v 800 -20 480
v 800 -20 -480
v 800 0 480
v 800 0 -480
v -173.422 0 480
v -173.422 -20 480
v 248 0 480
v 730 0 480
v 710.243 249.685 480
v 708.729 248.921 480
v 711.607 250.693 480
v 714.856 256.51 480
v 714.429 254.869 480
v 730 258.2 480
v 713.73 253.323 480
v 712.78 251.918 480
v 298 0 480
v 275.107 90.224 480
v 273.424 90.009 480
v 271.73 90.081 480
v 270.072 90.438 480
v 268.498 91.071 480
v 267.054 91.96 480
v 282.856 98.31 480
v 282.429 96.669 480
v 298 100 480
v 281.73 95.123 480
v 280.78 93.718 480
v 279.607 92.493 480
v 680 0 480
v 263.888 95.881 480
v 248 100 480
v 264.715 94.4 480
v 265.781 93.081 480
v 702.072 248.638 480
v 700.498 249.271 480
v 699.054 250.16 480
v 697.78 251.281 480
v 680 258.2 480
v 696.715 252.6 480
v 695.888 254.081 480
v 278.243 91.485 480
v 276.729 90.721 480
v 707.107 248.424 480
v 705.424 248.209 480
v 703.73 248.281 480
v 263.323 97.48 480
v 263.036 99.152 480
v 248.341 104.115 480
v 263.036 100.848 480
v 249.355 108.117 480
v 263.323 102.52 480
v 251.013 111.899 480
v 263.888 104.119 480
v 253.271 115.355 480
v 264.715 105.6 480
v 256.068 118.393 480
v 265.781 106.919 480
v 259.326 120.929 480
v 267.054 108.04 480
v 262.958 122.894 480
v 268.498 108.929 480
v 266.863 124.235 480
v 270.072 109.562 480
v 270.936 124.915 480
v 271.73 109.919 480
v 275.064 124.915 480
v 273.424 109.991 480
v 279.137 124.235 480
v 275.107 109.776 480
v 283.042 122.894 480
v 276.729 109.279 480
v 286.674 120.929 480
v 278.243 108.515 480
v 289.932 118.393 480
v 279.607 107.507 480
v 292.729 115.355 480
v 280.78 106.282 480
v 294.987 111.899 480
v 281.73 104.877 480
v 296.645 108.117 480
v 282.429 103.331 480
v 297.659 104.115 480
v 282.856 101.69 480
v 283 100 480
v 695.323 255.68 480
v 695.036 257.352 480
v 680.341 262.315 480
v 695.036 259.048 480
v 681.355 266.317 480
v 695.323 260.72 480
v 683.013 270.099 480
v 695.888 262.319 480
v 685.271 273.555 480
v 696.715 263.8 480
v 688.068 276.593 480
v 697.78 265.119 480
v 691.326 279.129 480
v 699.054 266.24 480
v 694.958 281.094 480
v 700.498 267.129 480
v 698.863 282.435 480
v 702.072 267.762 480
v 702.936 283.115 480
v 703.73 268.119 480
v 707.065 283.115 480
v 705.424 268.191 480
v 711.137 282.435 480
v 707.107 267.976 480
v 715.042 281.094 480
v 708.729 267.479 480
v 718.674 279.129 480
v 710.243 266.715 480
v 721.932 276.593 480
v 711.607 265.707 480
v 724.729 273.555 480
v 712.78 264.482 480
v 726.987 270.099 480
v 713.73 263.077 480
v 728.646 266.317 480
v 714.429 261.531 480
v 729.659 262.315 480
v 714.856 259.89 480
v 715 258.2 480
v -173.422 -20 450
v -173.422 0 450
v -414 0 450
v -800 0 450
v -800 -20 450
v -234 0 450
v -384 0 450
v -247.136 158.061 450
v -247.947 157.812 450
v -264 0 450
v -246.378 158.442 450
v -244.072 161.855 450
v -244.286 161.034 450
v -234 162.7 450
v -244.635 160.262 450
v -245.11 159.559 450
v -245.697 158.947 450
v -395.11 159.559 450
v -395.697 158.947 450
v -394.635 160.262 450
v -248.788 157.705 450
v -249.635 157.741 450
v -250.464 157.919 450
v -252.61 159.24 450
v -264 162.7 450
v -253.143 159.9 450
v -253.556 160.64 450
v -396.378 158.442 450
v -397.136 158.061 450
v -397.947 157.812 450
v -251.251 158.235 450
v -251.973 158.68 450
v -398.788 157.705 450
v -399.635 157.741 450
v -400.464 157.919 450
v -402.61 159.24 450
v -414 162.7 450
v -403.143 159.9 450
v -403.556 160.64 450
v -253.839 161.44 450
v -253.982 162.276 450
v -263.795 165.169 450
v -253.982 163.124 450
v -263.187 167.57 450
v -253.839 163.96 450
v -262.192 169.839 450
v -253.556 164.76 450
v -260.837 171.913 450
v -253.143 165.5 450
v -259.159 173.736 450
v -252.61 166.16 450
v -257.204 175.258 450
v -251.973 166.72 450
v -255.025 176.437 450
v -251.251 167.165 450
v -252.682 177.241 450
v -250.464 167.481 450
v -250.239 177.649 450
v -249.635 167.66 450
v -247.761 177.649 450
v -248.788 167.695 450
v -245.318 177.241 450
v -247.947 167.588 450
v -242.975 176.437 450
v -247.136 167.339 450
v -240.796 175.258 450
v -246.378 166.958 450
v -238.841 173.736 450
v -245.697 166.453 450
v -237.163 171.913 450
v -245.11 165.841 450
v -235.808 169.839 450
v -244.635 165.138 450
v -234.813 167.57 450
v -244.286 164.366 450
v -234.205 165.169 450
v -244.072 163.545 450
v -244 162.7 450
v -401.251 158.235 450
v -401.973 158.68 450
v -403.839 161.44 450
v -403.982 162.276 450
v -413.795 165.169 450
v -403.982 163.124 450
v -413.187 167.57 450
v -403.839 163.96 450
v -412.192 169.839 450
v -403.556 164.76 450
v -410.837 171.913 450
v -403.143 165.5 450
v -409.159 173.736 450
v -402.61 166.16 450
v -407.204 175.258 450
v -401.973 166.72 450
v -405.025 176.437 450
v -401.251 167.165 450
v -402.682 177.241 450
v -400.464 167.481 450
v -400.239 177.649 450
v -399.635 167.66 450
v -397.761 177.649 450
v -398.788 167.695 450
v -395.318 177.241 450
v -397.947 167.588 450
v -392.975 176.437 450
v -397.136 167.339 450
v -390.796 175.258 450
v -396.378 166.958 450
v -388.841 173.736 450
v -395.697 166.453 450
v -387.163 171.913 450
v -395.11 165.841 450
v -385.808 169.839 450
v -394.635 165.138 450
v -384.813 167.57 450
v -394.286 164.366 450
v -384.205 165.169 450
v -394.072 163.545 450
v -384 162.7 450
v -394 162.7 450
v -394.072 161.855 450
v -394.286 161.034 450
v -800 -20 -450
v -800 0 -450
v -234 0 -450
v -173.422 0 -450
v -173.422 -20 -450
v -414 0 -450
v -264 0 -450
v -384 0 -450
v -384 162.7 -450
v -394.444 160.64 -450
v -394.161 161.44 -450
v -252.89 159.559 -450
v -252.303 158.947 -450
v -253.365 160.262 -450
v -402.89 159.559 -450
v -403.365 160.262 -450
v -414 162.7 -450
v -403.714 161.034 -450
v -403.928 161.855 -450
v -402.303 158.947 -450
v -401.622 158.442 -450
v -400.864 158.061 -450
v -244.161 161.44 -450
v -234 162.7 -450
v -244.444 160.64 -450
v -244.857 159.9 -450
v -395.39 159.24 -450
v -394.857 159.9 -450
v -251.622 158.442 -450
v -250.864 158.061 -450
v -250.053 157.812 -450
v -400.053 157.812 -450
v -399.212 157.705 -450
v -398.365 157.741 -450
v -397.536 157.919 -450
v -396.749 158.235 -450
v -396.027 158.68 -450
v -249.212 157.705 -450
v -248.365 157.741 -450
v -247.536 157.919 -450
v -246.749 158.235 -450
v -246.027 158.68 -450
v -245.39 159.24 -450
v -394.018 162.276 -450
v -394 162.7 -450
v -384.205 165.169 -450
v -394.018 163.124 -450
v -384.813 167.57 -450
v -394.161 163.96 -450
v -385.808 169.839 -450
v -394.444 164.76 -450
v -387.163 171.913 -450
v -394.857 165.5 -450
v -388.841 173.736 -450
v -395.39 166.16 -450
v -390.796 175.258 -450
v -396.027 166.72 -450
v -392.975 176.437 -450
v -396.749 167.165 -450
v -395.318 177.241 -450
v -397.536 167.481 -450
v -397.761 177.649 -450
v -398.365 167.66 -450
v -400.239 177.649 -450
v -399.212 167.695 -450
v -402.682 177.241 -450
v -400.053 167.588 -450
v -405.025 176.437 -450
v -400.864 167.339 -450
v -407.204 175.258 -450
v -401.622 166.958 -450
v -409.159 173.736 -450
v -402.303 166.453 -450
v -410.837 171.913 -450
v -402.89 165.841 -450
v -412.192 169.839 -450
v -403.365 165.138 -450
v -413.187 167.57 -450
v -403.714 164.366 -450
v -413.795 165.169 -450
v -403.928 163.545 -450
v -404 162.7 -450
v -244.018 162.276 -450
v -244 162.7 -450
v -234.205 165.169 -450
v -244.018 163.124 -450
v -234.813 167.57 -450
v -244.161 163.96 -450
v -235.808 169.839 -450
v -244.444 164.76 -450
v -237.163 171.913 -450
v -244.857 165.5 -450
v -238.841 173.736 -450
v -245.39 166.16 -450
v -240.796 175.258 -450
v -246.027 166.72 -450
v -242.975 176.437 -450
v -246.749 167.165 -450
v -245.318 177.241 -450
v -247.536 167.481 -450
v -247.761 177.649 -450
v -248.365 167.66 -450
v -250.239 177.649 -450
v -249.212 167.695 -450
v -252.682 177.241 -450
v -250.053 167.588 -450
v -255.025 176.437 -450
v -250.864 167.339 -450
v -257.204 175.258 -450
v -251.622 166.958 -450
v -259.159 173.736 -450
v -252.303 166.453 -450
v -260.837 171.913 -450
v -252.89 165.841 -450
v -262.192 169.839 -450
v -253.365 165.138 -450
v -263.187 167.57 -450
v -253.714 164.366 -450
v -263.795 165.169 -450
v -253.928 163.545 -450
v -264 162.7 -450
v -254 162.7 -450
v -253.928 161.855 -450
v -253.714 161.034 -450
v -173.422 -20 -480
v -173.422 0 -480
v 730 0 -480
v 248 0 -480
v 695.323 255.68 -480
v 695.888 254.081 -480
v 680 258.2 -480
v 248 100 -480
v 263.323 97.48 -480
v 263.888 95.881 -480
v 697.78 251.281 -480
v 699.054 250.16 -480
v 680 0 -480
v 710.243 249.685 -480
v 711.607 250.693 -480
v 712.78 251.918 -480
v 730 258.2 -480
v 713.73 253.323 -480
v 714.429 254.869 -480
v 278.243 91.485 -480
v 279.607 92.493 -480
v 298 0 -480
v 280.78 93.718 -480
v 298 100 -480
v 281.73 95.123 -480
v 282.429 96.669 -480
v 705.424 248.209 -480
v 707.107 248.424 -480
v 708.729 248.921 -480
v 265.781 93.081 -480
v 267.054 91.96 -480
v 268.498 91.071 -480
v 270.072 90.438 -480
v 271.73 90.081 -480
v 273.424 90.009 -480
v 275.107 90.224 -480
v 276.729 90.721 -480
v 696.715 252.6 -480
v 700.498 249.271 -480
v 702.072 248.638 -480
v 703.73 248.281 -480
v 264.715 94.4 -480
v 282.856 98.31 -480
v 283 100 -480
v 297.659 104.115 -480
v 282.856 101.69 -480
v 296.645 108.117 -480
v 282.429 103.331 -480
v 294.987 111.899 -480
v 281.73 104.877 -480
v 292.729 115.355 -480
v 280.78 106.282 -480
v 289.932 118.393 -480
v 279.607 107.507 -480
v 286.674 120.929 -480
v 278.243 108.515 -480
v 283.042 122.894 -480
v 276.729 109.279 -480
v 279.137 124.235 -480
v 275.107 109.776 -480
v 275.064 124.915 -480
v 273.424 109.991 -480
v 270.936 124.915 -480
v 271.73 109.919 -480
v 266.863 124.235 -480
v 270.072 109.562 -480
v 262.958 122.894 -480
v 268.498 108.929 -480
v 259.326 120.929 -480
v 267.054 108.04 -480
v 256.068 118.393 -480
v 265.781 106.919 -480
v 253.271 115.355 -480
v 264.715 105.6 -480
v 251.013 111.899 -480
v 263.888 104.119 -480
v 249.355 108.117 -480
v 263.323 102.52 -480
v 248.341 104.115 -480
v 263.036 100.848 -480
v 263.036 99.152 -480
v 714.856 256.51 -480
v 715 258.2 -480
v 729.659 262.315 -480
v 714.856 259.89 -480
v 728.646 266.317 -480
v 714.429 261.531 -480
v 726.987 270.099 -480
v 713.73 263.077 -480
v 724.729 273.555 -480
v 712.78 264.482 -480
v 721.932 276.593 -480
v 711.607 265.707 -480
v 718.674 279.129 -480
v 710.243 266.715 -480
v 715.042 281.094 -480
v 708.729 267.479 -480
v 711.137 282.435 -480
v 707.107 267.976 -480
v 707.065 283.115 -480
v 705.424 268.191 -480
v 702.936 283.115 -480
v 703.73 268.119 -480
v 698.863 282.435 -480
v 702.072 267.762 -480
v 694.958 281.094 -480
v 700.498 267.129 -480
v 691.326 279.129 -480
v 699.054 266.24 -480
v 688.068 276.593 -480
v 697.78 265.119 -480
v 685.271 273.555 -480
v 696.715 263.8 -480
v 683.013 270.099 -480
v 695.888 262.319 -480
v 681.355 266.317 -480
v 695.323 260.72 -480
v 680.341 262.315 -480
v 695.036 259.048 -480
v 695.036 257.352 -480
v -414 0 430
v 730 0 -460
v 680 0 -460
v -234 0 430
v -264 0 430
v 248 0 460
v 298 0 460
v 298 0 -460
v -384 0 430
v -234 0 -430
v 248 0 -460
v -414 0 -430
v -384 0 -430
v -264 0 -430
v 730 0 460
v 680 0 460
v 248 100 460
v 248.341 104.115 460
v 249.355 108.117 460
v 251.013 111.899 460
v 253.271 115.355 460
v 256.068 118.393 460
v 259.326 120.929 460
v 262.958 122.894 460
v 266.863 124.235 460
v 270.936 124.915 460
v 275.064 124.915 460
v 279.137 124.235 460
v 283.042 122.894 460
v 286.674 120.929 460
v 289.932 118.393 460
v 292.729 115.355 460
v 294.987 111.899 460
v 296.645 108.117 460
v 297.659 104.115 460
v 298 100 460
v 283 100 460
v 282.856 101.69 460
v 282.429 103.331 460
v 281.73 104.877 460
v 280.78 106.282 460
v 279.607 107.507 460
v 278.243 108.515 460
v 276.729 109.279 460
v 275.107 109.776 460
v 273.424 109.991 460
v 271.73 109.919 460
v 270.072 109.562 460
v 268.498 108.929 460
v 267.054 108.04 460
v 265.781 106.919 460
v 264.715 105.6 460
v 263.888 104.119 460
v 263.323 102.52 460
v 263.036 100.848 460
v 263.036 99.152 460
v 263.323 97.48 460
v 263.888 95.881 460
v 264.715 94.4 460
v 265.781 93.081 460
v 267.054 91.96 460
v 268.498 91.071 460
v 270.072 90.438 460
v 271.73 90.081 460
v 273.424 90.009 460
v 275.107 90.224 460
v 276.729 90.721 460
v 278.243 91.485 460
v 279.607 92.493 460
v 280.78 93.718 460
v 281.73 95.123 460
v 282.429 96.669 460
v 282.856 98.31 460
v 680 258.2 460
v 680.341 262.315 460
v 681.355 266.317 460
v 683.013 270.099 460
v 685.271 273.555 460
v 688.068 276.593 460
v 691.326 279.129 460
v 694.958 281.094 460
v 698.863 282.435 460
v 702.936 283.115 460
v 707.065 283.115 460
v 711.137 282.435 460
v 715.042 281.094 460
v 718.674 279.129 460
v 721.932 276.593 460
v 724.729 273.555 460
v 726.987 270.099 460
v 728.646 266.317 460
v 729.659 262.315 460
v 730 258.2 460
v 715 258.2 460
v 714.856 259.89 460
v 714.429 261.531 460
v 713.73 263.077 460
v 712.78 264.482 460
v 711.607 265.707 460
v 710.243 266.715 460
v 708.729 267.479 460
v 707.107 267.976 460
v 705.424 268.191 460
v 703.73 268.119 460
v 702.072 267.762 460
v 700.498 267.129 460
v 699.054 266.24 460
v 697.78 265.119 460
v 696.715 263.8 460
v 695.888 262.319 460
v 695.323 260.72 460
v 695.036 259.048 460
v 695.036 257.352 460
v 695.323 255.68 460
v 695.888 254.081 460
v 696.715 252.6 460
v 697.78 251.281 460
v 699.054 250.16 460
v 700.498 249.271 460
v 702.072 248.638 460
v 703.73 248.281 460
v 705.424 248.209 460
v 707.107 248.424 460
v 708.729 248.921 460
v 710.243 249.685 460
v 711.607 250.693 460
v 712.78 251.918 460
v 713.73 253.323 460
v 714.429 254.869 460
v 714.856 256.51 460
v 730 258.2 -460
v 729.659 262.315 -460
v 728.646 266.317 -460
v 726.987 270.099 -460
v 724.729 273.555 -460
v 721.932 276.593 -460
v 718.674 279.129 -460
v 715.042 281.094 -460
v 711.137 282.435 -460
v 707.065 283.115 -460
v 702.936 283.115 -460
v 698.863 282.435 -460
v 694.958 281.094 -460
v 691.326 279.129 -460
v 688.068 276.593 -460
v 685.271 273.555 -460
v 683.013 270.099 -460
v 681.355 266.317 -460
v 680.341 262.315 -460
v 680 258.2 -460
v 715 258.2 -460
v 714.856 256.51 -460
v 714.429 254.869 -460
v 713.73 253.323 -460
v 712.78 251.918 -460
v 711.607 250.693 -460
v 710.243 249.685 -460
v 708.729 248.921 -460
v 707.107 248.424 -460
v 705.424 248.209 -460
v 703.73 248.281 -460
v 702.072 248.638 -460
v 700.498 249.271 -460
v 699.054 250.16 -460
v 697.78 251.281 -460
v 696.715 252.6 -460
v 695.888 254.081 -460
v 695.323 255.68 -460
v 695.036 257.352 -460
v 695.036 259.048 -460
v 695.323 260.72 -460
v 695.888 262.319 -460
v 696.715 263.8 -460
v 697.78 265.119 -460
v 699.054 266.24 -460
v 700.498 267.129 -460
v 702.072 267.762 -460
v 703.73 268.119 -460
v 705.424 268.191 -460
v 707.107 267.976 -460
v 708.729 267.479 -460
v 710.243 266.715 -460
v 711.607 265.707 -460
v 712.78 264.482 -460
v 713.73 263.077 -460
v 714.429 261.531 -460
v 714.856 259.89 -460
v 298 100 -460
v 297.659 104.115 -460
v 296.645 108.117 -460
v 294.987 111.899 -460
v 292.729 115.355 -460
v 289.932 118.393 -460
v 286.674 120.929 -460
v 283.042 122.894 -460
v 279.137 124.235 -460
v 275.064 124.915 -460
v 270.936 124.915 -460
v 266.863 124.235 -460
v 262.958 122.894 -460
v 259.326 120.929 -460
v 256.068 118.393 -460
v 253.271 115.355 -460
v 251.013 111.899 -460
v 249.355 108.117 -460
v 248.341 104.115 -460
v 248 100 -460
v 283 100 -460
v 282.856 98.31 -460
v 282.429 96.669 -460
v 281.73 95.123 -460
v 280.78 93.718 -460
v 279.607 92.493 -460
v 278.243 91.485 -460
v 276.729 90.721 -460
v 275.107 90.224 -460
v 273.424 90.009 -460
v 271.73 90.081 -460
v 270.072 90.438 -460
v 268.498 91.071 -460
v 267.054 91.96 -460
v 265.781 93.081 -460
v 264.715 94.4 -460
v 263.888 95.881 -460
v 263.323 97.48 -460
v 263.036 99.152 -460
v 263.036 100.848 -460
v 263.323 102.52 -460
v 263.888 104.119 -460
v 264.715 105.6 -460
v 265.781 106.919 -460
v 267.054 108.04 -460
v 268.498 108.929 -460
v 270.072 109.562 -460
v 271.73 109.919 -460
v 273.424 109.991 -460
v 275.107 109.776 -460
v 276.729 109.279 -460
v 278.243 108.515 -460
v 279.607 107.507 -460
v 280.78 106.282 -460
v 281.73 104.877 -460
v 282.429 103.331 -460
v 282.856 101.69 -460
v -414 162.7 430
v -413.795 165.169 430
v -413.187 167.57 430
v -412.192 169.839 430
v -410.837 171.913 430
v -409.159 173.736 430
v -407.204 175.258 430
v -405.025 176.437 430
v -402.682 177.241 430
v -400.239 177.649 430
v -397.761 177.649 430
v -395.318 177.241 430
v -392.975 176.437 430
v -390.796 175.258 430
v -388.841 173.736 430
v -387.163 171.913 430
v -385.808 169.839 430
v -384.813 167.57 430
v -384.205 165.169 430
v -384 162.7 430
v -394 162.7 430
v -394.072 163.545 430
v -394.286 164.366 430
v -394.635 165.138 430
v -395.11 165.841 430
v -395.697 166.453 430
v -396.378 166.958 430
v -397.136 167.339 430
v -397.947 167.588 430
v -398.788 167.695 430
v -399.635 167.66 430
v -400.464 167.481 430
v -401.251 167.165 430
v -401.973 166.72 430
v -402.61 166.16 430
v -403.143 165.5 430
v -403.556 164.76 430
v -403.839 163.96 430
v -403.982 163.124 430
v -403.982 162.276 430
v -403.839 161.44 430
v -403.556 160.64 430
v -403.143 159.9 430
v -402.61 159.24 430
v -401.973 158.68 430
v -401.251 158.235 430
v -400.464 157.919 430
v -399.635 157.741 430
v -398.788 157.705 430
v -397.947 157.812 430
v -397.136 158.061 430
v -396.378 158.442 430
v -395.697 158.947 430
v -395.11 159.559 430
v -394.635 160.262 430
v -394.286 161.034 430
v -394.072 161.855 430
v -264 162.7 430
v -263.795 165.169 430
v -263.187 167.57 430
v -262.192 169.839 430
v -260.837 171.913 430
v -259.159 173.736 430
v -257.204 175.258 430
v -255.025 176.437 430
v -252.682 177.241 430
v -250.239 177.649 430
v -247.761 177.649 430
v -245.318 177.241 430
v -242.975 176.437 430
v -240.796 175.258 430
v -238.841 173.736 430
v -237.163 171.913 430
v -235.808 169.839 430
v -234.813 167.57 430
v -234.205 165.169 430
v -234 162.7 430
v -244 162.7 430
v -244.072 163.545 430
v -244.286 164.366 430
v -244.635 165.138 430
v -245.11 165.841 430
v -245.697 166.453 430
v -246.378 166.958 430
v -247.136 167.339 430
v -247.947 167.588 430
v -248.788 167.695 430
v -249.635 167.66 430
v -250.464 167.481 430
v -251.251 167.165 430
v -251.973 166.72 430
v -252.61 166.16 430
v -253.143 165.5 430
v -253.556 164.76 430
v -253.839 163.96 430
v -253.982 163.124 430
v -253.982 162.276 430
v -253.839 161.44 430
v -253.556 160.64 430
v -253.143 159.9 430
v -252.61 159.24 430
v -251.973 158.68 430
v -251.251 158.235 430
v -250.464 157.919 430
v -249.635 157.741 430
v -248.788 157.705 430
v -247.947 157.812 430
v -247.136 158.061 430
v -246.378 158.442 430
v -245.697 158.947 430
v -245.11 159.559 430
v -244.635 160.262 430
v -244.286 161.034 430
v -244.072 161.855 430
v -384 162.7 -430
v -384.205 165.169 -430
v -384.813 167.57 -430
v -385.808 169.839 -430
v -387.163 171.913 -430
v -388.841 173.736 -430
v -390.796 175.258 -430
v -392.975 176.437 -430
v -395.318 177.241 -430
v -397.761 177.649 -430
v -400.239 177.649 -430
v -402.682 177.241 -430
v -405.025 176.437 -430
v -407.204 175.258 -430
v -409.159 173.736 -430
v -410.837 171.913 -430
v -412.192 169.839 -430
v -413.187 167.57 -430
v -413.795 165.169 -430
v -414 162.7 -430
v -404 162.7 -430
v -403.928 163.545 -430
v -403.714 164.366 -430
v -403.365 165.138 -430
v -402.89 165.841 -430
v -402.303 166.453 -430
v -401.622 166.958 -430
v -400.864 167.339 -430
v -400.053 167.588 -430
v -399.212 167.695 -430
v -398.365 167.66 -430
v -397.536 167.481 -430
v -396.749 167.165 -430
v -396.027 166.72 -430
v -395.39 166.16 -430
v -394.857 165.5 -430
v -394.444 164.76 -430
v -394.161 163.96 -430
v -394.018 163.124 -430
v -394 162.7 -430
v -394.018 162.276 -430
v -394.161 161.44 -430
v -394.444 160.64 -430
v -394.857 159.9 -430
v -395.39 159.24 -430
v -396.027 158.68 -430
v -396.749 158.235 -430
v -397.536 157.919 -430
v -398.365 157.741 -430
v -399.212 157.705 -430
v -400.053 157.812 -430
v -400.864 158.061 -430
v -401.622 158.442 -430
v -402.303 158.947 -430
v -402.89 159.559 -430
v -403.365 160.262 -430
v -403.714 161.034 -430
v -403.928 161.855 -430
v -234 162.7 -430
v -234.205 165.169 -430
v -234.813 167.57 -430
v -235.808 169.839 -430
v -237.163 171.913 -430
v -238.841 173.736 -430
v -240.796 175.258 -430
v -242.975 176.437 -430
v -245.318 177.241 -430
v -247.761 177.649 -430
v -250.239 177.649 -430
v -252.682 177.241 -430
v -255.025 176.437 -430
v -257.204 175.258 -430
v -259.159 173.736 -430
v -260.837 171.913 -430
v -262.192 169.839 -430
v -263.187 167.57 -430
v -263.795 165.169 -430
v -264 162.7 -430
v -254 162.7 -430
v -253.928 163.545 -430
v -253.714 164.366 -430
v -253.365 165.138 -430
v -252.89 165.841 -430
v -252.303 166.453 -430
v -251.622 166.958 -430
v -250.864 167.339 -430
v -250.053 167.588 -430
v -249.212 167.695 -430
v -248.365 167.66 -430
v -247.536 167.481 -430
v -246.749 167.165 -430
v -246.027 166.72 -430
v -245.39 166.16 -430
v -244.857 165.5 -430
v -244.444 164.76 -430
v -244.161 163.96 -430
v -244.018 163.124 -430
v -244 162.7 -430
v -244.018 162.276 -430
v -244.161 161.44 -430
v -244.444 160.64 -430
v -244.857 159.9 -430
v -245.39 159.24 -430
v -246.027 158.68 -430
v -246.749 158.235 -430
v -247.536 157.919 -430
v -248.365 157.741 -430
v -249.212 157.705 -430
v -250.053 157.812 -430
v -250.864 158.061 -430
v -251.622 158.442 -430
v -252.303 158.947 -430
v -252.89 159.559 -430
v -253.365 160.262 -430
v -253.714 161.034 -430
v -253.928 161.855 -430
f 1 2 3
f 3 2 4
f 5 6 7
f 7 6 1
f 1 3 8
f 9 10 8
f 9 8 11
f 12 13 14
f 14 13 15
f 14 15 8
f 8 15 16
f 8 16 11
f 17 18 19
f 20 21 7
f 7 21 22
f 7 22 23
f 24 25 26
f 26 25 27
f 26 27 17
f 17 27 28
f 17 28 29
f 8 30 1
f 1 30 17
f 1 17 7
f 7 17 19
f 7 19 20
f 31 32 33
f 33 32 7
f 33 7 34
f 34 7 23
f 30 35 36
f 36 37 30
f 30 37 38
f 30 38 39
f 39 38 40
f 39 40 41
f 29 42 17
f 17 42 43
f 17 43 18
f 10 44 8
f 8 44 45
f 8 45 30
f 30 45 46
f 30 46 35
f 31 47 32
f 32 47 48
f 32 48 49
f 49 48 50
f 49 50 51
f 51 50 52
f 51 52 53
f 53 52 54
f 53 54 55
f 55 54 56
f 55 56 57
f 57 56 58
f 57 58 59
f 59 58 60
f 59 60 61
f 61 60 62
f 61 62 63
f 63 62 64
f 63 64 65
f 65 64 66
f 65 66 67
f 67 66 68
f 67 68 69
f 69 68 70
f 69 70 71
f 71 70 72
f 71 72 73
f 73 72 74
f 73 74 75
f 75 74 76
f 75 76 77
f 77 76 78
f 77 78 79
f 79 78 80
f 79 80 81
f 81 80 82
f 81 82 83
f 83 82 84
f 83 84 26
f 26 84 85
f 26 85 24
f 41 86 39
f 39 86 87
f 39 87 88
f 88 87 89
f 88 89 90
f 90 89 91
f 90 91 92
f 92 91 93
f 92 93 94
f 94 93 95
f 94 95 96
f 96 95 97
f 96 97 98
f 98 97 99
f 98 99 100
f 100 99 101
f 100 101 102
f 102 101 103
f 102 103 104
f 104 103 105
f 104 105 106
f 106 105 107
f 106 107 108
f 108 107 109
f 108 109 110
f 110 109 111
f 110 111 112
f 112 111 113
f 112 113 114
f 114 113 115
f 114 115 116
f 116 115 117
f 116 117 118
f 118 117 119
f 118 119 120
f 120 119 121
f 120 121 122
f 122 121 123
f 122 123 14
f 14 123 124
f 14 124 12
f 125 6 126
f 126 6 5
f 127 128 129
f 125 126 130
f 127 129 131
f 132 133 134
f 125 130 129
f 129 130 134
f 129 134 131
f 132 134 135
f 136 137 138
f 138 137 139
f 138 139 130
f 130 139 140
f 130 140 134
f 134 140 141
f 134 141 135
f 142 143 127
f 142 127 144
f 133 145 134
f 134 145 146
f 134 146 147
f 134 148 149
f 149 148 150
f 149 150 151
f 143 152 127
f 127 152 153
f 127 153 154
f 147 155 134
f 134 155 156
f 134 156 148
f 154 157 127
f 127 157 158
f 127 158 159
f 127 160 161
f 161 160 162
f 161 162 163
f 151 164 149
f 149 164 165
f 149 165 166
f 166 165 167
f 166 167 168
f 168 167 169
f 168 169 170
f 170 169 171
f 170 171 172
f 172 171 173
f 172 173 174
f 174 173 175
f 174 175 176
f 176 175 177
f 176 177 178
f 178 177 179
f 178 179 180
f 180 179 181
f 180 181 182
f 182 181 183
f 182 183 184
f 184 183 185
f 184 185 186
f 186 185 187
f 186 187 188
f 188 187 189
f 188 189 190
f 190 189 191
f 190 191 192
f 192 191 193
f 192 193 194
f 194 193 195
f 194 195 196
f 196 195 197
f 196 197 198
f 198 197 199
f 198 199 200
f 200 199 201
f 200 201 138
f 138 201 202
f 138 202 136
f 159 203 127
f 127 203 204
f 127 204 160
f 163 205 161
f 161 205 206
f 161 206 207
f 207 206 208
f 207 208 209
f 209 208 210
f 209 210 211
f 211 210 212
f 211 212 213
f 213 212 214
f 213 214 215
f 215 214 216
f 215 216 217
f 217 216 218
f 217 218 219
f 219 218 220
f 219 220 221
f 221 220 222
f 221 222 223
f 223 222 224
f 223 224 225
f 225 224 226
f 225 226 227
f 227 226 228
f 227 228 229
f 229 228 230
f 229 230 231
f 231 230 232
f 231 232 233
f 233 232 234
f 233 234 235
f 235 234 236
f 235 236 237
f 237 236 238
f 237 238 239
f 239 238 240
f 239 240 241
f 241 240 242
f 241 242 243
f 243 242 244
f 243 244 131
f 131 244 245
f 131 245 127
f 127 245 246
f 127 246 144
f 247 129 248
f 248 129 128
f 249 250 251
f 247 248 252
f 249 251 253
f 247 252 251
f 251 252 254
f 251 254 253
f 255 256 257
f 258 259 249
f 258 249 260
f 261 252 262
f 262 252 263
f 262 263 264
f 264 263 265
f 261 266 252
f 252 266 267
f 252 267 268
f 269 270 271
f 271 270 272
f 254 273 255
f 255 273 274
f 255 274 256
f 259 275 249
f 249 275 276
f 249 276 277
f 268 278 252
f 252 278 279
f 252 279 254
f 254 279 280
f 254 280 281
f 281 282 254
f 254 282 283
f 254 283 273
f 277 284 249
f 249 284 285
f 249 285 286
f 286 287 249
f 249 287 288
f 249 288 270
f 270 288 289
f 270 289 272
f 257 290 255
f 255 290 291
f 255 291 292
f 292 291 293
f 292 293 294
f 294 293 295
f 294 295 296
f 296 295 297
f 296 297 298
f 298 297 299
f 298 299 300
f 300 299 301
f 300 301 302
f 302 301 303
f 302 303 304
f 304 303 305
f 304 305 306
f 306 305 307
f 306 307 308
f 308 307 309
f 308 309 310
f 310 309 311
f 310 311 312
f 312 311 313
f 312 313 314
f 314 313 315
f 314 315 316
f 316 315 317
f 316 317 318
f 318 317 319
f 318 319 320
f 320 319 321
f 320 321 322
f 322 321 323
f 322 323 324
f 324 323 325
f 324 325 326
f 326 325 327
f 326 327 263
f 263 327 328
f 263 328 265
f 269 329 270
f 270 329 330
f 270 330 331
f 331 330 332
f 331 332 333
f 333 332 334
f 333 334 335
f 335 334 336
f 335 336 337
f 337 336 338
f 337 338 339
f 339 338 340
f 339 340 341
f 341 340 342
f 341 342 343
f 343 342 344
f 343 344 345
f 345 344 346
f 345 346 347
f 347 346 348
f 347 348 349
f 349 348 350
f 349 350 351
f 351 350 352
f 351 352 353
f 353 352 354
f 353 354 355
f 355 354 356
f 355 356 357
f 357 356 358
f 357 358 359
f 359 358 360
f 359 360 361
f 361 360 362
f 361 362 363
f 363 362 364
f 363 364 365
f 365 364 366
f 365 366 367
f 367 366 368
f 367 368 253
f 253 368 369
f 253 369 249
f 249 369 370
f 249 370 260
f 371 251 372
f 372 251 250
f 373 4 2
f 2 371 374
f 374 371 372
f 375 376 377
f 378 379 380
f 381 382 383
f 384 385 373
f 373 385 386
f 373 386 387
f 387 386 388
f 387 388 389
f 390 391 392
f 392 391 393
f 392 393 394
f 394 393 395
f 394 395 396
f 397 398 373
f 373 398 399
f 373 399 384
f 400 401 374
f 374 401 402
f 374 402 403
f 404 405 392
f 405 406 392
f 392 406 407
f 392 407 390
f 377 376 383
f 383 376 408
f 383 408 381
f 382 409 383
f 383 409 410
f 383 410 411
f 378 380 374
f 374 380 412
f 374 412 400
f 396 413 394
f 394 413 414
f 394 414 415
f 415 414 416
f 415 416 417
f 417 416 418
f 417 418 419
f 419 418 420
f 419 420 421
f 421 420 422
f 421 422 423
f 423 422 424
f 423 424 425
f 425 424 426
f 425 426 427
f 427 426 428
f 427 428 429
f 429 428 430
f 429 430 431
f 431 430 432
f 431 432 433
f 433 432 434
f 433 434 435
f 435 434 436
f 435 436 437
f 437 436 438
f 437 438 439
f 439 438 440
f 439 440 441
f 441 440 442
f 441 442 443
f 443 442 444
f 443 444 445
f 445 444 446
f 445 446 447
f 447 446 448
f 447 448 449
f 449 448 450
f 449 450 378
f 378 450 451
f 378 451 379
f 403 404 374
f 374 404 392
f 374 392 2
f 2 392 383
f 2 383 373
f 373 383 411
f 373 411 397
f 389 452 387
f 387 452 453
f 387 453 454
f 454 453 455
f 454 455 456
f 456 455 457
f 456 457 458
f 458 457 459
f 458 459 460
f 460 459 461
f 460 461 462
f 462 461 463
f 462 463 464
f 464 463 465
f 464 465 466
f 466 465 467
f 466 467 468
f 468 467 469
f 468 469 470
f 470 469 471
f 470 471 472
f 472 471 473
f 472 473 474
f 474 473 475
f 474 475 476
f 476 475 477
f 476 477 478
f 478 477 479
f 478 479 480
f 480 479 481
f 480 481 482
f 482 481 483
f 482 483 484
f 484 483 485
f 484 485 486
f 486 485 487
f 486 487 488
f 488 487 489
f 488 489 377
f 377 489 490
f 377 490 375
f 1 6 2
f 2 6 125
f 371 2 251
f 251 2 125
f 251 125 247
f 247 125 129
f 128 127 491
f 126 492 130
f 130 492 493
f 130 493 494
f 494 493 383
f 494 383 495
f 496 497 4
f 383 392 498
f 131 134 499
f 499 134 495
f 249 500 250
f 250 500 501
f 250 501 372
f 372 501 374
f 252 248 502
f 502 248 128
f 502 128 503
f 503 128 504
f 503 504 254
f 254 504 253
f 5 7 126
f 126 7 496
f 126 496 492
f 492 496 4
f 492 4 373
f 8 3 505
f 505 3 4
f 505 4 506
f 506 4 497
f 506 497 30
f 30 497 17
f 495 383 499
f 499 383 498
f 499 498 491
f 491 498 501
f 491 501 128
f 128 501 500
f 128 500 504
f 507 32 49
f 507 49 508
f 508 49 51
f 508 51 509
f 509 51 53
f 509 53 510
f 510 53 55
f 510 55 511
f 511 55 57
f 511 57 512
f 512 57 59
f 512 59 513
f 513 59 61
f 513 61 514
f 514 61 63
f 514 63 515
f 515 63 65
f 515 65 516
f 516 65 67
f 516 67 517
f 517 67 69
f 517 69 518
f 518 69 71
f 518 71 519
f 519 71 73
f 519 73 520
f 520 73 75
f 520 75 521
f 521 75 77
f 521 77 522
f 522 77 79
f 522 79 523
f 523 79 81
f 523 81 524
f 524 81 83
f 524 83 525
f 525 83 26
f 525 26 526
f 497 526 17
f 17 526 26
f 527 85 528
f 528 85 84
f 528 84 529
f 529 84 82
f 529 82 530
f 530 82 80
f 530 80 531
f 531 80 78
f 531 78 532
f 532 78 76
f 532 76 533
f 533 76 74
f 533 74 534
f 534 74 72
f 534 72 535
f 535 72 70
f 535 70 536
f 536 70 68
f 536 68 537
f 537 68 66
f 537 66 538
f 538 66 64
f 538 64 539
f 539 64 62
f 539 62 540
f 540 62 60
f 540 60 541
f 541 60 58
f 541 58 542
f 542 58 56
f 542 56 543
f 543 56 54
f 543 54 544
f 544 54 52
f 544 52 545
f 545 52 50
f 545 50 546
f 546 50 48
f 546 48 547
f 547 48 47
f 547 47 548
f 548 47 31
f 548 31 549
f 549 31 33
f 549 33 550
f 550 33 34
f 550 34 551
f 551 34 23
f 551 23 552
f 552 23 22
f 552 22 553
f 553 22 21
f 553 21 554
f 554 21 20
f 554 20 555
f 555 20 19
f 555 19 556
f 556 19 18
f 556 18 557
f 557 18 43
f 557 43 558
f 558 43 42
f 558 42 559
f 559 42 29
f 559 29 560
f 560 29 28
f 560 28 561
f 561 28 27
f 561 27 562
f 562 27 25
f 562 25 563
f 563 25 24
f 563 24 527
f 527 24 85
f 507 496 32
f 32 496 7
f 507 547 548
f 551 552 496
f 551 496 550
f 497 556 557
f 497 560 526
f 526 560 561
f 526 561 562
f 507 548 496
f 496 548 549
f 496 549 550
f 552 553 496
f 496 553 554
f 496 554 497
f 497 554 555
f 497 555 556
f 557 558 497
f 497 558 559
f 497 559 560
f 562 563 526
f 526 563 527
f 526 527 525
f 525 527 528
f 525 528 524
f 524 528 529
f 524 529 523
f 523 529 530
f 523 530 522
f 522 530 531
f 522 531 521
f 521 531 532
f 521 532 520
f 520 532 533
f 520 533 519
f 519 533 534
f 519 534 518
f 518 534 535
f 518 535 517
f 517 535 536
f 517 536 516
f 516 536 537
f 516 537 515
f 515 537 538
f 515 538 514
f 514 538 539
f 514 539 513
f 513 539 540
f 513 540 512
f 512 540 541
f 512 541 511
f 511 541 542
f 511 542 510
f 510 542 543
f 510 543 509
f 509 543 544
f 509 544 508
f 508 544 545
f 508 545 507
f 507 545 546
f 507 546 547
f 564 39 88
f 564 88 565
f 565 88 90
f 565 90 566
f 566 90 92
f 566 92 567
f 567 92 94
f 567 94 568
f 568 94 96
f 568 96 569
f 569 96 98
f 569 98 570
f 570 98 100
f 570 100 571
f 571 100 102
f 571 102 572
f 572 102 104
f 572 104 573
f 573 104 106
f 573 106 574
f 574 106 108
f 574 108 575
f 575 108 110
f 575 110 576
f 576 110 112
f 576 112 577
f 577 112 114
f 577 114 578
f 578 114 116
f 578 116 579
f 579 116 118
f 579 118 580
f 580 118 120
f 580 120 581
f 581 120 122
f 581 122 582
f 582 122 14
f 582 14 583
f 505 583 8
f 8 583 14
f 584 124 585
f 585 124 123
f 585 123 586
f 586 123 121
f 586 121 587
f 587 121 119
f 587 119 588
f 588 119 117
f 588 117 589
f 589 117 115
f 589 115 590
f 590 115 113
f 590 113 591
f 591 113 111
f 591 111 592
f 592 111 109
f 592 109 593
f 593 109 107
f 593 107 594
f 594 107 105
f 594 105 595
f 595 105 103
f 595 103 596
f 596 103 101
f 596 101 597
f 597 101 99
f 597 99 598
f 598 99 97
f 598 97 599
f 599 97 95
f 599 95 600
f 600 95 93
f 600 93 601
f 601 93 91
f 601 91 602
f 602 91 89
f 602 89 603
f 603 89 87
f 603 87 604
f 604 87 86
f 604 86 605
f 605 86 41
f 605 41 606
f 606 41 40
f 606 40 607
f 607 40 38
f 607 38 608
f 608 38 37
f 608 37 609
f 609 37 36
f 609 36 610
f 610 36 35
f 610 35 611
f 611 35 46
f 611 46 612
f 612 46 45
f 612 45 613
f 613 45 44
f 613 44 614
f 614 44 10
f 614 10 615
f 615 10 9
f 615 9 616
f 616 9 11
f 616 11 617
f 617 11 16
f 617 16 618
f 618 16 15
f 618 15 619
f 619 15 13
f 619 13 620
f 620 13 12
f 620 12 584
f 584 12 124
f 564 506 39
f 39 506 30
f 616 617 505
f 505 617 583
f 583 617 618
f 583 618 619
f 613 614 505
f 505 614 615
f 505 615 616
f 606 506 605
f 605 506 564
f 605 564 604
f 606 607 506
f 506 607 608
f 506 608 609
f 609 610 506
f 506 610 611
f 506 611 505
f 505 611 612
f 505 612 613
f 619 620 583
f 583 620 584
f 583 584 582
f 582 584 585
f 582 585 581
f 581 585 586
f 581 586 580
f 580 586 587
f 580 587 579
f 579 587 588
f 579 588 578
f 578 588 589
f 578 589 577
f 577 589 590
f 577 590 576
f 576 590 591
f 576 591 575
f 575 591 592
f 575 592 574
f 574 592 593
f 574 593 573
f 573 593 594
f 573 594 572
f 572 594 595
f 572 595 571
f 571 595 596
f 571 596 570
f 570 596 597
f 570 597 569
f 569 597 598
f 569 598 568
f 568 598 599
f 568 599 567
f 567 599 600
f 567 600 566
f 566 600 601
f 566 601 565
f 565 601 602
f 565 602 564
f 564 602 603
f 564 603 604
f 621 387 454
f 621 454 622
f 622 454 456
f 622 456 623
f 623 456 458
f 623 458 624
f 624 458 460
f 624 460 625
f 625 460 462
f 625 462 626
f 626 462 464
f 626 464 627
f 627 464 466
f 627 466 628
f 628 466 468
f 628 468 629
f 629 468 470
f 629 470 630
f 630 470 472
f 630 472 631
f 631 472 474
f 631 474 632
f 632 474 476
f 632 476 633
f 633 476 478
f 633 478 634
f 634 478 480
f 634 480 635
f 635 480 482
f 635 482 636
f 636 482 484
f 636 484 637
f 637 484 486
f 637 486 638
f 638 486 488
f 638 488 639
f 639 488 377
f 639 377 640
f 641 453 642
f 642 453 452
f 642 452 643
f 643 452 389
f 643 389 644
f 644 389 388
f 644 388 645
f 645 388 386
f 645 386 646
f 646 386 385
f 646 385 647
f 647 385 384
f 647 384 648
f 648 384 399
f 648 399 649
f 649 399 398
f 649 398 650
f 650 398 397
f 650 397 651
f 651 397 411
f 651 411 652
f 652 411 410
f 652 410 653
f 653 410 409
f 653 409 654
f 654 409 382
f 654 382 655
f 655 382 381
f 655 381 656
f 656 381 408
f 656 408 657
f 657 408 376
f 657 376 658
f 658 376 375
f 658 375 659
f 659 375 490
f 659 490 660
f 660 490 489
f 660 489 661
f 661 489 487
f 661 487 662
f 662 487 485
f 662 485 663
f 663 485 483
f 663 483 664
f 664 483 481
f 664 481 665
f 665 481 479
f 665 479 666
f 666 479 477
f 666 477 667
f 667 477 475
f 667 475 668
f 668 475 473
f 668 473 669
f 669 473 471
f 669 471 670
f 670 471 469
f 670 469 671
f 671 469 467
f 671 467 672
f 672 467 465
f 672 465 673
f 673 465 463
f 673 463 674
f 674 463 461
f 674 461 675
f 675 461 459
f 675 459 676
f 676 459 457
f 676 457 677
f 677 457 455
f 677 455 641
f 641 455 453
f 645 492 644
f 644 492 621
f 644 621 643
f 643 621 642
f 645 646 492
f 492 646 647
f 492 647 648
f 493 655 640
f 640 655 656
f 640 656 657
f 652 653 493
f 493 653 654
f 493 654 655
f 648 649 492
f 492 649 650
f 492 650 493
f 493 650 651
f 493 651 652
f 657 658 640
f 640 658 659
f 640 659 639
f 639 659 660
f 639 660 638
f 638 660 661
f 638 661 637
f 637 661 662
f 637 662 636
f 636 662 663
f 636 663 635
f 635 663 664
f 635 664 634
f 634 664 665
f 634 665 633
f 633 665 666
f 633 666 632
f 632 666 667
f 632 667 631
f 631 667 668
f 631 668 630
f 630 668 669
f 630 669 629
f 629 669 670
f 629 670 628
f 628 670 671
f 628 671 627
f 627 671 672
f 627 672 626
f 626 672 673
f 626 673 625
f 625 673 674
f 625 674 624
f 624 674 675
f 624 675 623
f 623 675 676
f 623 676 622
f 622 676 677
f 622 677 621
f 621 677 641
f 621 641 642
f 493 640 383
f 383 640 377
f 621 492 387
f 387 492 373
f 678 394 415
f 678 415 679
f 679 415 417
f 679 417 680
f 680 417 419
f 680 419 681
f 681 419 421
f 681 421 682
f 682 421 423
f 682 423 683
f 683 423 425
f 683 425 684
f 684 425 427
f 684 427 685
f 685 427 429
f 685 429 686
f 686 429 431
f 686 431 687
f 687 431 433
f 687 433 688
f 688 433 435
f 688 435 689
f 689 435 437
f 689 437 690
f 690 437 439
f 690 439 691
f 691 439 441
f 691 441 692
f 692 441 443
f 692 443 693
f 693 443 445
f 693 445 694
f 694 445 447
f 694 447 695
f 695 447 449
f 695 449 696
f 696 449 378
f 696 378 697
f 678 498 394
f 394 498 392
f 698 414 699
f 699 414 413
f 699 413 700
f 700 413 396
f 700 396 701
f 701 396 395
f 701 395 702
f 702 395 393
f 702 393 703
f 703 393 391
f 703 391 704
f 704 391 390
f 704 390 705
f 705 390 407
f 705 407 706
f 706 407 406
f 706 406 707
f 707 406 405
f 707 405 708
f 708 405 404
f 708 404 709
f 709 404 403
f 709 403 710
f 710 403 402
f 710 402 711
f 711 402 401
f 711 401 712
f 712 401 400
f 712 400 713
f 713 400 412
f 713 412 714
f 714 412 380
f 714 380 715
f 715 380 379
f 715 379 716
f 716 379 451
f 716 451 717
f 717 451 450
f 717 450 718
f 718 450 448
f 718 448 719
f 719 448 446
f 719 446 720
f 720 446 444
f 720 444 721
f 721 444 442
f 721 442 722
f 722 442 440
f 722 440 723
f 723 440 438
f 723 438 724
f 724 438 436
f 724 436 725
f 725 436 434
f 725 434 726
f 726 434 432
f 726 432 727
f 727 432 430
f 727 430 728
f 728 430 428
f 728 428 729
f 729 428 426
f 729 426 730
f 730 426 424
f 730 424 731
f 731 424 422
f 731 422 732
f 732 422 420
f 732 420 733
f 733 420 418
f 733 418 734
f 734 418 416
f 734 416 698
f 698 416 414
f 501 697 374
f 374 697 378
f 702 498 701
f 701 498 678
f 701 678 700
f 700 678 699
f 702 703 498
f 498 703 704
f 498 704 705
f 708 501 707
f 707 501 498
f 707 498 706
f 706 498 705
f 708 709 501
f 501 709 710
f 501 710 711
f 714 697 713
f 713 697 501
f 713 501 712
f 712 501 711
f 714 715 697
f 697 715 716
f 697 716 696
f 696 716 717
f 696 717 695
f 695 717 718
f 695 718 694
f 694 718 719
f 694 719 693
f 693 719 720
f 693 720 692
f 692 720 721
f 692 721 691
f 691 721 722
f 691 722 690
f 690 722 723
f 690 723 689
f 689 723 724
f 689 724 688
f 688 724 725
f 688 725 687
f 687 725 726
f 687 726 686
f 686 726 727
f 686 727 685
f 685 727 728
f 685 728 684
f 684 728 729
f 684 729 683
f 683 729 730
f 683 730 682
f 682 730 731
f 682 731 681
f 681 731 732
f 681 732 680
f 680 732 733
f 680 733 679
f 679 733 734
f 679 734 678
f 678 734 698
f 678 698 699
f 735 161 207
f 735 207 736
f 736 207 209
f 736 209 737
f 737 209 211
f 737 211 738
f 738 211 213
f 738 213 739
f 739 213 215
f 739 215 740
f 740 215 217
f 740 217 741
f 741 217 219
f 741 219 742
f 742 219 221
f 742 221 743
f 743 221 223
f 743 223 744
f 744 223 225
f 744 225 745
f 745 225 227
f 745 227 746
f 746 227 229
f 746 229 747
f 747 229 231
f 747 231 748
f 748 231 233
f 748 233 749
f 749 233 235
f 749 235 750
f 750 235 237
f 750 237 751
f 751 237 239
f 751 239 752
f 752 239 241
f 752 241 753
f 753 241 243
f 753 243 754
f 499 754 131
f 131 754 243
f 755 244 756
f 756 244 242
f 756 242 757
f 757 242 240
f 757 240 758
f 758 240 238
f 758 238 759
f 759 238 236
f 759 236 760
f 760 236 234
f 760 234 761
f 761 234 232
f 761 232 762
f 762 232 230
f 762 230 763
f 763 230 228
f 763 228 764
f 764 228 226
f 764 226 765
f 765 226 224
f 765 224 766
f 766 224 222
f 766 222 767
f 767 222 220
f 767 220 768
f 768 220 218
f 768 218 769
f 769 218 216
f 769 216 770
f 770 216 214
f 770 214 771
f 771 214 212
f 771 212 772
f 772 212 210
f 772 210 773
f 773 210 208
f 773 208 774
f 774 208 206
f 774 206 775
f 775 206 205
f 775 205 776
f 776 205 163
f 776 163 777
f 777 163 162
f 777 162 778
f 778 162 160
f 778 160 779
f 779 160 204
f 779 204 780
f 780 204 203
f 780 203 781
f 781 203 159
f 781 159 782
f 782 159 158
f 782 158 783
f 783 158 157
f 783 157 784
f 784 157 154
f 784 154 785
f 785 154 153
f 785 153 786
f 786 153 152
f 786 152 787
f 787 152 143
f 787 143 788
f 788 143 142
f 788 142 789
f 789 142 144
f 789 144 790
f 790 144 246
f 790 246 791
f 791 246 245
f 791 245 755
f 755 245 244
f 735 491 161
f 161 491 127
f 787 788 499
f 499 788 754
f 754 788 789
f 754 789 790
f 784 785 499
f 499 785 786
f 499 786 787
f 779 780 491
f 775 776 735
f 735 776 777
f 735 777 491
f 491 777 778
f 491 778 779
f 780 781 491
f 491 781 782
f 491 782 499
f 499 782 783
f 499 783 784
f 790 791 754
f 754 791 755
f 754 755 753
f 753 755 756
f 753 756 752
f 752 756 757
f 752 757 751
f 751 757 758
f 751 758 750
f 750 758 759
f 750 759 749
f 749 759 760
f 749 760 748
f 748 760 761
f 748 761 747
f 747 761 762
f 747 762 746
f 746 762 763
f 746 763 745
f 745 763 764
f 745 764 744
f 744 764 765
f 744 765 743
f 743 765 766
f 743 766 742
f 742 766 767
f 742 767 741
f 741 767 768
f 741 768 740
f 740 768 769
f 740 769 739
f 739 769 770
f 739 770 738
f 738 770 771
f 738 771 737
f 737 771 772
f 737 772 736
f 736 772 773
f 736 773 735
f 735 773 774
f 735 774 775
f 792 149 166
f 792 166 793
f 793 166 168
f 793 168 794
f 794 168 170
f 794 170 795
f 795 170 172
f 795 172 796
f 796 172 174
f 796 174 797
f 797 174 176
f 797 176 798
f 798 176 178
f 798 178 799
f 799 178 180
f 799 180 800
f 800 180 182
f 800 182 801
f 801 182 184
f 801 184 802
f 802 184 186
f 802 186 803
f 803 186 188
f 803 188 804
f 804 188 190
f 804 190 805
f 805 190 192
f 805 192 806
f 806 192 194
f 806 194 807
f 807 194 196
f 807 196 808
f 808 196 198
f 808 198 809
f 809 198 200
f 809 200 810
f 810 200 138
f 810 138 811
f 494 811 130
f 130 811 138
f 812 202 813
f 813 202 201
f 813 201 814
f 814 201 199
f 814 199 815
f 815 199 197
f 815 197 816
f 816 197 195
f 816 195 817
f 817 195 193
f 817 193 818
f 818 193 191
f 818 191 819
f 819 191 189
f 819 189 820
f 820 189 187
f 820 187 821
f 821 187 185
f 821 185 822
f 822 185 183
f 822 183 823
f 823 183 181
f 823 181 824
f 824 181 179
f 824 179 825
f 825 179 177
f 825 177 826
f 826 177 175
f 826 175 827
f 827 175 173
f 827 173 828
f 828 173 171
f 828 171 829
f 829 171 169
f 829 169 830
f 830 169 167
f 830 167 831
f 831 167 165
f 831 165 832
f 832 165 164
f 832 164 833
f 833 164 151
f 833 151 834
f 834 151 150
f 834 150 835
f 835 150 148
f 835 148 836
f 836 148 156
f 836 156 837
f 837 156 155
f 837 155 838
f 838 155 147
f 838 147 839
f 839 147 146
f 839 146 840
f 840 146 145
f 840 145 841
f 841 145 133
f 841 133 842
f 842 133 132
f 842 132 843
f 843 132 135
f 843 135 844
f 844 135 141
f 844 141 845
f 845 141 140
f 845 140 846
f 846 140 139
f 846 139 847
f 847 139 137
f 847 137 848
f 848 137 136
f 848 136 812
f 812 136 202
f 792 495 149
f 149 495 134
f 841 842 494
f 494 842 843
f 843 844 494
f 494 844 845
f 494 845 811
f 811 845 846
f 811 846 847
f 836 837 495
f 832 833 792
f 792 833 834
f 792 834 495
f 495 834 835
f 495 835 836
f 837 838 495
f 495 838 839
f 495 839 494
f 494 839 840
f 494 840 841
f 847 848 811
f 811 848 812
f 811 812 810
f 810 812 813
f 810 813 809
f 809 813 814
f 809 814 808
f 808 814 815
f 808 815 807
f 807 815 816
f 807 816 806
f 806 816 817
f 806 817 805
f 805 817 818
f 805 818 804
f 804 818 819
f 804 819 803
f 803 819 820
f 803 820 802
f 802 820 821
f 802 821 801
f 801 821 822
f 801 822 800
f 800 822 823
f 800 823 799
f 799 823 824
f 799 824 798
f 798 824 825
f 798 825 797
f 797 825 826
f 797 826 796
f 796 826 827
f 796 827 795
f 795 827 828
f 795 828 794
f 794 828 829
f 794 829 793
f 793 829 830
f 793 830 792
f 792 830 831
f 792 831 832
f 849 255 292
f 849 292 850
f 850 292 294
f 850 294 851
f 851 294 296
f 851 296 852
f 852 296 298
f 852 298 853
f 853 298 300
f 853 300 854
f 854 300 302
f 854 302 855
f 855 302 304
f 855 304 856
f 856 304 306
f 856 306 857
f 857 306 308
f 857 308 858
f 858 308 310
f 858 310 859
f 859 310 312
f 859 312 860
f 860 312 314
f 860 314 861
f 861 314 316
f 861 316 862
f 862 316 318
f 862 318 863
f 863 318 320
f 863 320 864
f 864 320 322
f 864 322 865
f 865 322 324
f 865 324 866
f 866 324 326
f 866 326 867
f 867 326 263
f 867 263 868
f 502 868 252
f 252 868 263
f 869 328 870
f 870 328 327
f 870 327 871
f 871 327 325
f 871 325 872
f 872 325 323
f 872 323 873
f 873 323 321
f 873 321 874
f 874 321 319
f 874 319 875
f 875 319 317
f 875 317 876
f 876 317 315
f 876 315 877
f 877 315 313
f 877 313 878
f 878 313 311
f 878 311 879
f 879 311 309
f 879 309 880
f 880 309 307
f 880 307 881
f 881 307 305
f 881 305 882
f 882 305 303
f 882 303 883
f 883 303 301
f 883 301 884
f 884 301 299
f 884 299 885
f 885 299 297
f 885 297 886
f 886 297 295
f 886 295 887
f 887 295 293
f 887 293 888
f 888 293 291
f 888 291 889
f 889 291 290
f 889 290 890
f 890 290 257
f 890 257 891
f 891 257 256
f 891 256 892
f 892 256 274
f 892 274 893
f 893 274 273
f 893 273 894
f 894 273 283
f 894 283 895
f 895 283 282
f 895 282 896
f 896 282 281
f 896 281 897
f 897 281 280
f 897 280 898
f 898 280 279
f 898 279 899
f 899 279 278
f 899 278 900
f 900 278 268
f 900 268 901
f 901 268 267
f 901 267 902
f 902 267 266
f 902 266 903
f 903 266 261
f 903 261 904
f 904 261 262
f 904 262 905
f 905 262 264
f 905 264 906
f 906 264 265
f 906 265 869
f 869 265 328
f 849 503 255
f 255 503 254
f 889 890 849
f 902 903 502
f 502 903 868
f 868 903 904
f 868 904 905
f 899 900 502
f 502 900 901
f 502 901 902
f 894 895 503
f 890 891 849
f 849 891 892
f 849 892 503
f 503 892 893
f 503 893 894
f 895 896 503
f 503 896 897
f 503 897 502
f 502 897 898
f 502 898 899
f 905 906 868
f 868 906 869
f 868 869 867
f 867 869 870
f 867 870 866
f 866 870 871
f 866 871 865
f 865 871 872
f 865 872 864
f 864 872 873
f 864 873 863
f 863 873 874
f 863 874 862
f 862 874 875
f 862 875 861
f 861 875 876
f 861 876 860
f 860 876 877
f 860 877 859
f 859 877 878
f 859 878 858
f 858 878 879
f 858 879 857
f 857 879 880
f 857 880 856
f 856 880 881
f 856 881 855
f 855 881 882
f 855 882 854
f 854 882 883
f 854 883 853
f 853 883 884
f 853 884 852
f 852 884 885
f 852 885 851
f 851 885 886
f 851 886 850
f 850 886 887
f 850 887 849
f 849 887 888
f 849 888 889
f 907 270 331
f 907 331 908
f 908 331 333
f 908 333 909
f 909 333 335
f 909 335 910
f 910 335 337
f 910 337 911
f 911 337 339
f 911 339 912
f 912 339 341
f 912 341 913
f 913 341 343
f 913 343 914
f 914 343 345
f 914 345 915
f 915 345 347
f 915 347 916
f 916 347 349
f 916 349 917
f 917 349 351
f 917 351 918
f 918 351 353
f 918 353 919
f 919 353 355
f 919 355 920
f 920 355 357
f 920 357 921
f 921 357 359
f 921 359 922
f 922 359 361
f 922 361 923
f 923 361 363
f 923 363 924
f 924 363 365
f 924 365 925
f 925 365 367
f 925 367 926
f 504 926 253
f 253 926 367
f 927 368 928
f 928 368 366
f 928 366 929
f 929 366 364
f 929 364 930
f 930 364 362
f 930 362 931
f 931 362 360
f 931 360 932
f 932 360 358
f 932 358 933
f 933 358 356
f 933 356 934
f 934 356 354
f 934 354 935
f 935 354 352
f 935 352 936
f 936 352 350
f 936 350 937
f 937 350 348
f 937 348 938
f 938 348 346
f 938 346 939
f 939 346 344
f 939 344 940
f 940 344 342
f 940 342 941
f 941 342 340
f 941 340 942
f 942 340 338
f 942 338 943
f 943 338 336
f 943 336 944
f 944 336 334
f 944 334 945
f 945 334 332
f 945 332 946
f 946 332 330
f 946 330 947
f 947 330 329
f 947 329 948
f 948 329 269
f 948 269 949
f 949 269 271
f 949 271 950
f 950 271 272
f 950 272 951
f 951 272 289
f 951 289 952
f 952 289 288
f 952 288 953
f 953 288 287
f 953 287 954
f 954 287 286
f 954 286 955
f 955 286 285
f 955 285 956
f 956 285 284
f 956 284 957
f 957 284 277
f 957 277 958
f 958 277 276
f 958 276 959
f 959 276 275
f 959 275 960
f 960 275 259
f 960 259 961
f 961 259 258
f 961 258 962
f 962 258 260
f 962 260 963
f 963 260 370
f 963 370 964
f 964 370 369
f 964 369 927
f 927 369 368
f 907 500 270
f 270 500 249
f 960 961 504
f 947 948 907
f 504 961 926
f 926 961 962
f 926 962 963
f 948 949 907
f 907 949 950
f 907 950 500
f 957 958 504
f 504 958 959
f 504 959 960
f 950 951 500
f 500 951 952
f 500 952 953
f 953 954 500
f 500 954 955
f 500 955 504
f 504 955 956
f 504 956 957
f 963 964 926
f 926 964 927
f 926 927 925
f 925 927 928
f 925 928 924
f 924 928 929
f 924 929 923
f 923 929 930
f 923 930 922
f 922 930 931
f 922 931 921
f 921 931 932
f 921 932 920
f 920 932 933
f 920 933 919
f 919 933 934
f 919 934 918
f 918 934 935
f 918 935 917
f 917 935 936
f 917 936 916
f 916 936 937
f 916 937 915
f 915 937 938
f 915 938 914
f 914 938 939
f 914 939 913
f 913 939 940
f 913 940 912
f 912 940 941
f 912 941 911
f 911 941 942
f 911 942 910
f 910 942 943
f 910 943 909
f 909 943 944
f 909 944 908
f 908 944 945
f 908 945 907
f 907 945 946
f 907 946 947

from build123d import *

# Parameters (mm, degrees)
BOSS_EXTRUDE1_DEPTH = 20
SKETCH2_R           = 10
BOSS_EXTRUDE2_DEPTH = 20
SKETCH3_R           = 5
BOSS_EXTRUDE3_DEPTH = 20


with BuildPart() as part:
    # Sketch1 → Boss-Extrude1 (new body)
    with BuildSketch(Plane(origin=(0, 0, 0), x_dir=(1, 0, 0), z_dir=(0, 1, 0))):
        Polygon((-173.422280891, 480), (-173.422280891, 450), (-800, 450), (-800, -450), (-173.422280891, -450), (-173.422280891, -480), (800, -480), (800, 480), align=None)
    extrude(amount=-BOSS_EXTRUDE1_DEPTH)

    # Sketch2 → Boss-Extrude2 (add)
    with BuildSketch(Plane.XY.offset(480)):
        with BuildLine():
            Line((248, 0), (298, 0))
            Line((298, 0), (298, 100))
            ThreePointArc((298, 100), (273, 125), (248, 100))
            Line((248, 100), (248, 0))
        make_face()
        with Locations((273, 100)):
            Circle(SKETCH2_R, mode=Mode.SUBTRACT)
        with BuildLine():
            Line((680, 258.2), (680, 0))
            Line((680, 0), (730, 0))
            Line((730, 0), (730, 258.2))
            ThreePointArc((730, 258.2), (705, 283.2), (680, 258.2))
        make_face()
        with Locations((705, 258.2)):
            Circle(SKETCH2_R, mode=Mode.SUBTRACT)
        Polygon((680, 0), (298, 0), (248, 0), (-173.422280891, 0), (-173.422280891, -20), (800, -20), (800, 0), (730, 0), align=None)
    extrude(amount=-BOSS_EXTRUDE2_DEPTH)

    # Mirror1: part across plane


with BuildPart() as part_1:
    add(part.part)
    add(part.part.mirror(Plane.XY))

    # Sketch3 → Boss-Extrude3 (add)
    with BuildSketch(Plane.XY.offset(450)):
        with BuildLine():
            Line((-414, 0), (-384, 0))
            Line((-384, 0), (-384, 162.7))
            ThreePointArc((-384, 162.7), (-399, 177.7), (-414, 162.7))
            Line((-414, 162.7), (-414, 0))
        make_face()
        with Locations((-399, 162.7)):
            Circle(SKETCH3_R, mode=Mode.SUBTRACT)
        with BuildLine():
            Line((-264, 0), (-234, 0))
            Line((-234, 0), (-234, 162.7))
            ThreePointArc((-234, 162.7), (-249, 177.7), (-264, 162.7))
            Line((-264, 162.7), (-264, 0))
        make_face()
        with Locations((-249, 162.7)):
            Circle(SKETCH3_R, mode=Mode.SUBTRACT)
    boss_extrude3 = extrude(amount=-BOSS_EXTRUDE3_DEPTH)

    # Mirror2: Boss-Extrude3 across plane
    add(boss_extrude3.mirror(Plane.XY))


solid = part_1.part
